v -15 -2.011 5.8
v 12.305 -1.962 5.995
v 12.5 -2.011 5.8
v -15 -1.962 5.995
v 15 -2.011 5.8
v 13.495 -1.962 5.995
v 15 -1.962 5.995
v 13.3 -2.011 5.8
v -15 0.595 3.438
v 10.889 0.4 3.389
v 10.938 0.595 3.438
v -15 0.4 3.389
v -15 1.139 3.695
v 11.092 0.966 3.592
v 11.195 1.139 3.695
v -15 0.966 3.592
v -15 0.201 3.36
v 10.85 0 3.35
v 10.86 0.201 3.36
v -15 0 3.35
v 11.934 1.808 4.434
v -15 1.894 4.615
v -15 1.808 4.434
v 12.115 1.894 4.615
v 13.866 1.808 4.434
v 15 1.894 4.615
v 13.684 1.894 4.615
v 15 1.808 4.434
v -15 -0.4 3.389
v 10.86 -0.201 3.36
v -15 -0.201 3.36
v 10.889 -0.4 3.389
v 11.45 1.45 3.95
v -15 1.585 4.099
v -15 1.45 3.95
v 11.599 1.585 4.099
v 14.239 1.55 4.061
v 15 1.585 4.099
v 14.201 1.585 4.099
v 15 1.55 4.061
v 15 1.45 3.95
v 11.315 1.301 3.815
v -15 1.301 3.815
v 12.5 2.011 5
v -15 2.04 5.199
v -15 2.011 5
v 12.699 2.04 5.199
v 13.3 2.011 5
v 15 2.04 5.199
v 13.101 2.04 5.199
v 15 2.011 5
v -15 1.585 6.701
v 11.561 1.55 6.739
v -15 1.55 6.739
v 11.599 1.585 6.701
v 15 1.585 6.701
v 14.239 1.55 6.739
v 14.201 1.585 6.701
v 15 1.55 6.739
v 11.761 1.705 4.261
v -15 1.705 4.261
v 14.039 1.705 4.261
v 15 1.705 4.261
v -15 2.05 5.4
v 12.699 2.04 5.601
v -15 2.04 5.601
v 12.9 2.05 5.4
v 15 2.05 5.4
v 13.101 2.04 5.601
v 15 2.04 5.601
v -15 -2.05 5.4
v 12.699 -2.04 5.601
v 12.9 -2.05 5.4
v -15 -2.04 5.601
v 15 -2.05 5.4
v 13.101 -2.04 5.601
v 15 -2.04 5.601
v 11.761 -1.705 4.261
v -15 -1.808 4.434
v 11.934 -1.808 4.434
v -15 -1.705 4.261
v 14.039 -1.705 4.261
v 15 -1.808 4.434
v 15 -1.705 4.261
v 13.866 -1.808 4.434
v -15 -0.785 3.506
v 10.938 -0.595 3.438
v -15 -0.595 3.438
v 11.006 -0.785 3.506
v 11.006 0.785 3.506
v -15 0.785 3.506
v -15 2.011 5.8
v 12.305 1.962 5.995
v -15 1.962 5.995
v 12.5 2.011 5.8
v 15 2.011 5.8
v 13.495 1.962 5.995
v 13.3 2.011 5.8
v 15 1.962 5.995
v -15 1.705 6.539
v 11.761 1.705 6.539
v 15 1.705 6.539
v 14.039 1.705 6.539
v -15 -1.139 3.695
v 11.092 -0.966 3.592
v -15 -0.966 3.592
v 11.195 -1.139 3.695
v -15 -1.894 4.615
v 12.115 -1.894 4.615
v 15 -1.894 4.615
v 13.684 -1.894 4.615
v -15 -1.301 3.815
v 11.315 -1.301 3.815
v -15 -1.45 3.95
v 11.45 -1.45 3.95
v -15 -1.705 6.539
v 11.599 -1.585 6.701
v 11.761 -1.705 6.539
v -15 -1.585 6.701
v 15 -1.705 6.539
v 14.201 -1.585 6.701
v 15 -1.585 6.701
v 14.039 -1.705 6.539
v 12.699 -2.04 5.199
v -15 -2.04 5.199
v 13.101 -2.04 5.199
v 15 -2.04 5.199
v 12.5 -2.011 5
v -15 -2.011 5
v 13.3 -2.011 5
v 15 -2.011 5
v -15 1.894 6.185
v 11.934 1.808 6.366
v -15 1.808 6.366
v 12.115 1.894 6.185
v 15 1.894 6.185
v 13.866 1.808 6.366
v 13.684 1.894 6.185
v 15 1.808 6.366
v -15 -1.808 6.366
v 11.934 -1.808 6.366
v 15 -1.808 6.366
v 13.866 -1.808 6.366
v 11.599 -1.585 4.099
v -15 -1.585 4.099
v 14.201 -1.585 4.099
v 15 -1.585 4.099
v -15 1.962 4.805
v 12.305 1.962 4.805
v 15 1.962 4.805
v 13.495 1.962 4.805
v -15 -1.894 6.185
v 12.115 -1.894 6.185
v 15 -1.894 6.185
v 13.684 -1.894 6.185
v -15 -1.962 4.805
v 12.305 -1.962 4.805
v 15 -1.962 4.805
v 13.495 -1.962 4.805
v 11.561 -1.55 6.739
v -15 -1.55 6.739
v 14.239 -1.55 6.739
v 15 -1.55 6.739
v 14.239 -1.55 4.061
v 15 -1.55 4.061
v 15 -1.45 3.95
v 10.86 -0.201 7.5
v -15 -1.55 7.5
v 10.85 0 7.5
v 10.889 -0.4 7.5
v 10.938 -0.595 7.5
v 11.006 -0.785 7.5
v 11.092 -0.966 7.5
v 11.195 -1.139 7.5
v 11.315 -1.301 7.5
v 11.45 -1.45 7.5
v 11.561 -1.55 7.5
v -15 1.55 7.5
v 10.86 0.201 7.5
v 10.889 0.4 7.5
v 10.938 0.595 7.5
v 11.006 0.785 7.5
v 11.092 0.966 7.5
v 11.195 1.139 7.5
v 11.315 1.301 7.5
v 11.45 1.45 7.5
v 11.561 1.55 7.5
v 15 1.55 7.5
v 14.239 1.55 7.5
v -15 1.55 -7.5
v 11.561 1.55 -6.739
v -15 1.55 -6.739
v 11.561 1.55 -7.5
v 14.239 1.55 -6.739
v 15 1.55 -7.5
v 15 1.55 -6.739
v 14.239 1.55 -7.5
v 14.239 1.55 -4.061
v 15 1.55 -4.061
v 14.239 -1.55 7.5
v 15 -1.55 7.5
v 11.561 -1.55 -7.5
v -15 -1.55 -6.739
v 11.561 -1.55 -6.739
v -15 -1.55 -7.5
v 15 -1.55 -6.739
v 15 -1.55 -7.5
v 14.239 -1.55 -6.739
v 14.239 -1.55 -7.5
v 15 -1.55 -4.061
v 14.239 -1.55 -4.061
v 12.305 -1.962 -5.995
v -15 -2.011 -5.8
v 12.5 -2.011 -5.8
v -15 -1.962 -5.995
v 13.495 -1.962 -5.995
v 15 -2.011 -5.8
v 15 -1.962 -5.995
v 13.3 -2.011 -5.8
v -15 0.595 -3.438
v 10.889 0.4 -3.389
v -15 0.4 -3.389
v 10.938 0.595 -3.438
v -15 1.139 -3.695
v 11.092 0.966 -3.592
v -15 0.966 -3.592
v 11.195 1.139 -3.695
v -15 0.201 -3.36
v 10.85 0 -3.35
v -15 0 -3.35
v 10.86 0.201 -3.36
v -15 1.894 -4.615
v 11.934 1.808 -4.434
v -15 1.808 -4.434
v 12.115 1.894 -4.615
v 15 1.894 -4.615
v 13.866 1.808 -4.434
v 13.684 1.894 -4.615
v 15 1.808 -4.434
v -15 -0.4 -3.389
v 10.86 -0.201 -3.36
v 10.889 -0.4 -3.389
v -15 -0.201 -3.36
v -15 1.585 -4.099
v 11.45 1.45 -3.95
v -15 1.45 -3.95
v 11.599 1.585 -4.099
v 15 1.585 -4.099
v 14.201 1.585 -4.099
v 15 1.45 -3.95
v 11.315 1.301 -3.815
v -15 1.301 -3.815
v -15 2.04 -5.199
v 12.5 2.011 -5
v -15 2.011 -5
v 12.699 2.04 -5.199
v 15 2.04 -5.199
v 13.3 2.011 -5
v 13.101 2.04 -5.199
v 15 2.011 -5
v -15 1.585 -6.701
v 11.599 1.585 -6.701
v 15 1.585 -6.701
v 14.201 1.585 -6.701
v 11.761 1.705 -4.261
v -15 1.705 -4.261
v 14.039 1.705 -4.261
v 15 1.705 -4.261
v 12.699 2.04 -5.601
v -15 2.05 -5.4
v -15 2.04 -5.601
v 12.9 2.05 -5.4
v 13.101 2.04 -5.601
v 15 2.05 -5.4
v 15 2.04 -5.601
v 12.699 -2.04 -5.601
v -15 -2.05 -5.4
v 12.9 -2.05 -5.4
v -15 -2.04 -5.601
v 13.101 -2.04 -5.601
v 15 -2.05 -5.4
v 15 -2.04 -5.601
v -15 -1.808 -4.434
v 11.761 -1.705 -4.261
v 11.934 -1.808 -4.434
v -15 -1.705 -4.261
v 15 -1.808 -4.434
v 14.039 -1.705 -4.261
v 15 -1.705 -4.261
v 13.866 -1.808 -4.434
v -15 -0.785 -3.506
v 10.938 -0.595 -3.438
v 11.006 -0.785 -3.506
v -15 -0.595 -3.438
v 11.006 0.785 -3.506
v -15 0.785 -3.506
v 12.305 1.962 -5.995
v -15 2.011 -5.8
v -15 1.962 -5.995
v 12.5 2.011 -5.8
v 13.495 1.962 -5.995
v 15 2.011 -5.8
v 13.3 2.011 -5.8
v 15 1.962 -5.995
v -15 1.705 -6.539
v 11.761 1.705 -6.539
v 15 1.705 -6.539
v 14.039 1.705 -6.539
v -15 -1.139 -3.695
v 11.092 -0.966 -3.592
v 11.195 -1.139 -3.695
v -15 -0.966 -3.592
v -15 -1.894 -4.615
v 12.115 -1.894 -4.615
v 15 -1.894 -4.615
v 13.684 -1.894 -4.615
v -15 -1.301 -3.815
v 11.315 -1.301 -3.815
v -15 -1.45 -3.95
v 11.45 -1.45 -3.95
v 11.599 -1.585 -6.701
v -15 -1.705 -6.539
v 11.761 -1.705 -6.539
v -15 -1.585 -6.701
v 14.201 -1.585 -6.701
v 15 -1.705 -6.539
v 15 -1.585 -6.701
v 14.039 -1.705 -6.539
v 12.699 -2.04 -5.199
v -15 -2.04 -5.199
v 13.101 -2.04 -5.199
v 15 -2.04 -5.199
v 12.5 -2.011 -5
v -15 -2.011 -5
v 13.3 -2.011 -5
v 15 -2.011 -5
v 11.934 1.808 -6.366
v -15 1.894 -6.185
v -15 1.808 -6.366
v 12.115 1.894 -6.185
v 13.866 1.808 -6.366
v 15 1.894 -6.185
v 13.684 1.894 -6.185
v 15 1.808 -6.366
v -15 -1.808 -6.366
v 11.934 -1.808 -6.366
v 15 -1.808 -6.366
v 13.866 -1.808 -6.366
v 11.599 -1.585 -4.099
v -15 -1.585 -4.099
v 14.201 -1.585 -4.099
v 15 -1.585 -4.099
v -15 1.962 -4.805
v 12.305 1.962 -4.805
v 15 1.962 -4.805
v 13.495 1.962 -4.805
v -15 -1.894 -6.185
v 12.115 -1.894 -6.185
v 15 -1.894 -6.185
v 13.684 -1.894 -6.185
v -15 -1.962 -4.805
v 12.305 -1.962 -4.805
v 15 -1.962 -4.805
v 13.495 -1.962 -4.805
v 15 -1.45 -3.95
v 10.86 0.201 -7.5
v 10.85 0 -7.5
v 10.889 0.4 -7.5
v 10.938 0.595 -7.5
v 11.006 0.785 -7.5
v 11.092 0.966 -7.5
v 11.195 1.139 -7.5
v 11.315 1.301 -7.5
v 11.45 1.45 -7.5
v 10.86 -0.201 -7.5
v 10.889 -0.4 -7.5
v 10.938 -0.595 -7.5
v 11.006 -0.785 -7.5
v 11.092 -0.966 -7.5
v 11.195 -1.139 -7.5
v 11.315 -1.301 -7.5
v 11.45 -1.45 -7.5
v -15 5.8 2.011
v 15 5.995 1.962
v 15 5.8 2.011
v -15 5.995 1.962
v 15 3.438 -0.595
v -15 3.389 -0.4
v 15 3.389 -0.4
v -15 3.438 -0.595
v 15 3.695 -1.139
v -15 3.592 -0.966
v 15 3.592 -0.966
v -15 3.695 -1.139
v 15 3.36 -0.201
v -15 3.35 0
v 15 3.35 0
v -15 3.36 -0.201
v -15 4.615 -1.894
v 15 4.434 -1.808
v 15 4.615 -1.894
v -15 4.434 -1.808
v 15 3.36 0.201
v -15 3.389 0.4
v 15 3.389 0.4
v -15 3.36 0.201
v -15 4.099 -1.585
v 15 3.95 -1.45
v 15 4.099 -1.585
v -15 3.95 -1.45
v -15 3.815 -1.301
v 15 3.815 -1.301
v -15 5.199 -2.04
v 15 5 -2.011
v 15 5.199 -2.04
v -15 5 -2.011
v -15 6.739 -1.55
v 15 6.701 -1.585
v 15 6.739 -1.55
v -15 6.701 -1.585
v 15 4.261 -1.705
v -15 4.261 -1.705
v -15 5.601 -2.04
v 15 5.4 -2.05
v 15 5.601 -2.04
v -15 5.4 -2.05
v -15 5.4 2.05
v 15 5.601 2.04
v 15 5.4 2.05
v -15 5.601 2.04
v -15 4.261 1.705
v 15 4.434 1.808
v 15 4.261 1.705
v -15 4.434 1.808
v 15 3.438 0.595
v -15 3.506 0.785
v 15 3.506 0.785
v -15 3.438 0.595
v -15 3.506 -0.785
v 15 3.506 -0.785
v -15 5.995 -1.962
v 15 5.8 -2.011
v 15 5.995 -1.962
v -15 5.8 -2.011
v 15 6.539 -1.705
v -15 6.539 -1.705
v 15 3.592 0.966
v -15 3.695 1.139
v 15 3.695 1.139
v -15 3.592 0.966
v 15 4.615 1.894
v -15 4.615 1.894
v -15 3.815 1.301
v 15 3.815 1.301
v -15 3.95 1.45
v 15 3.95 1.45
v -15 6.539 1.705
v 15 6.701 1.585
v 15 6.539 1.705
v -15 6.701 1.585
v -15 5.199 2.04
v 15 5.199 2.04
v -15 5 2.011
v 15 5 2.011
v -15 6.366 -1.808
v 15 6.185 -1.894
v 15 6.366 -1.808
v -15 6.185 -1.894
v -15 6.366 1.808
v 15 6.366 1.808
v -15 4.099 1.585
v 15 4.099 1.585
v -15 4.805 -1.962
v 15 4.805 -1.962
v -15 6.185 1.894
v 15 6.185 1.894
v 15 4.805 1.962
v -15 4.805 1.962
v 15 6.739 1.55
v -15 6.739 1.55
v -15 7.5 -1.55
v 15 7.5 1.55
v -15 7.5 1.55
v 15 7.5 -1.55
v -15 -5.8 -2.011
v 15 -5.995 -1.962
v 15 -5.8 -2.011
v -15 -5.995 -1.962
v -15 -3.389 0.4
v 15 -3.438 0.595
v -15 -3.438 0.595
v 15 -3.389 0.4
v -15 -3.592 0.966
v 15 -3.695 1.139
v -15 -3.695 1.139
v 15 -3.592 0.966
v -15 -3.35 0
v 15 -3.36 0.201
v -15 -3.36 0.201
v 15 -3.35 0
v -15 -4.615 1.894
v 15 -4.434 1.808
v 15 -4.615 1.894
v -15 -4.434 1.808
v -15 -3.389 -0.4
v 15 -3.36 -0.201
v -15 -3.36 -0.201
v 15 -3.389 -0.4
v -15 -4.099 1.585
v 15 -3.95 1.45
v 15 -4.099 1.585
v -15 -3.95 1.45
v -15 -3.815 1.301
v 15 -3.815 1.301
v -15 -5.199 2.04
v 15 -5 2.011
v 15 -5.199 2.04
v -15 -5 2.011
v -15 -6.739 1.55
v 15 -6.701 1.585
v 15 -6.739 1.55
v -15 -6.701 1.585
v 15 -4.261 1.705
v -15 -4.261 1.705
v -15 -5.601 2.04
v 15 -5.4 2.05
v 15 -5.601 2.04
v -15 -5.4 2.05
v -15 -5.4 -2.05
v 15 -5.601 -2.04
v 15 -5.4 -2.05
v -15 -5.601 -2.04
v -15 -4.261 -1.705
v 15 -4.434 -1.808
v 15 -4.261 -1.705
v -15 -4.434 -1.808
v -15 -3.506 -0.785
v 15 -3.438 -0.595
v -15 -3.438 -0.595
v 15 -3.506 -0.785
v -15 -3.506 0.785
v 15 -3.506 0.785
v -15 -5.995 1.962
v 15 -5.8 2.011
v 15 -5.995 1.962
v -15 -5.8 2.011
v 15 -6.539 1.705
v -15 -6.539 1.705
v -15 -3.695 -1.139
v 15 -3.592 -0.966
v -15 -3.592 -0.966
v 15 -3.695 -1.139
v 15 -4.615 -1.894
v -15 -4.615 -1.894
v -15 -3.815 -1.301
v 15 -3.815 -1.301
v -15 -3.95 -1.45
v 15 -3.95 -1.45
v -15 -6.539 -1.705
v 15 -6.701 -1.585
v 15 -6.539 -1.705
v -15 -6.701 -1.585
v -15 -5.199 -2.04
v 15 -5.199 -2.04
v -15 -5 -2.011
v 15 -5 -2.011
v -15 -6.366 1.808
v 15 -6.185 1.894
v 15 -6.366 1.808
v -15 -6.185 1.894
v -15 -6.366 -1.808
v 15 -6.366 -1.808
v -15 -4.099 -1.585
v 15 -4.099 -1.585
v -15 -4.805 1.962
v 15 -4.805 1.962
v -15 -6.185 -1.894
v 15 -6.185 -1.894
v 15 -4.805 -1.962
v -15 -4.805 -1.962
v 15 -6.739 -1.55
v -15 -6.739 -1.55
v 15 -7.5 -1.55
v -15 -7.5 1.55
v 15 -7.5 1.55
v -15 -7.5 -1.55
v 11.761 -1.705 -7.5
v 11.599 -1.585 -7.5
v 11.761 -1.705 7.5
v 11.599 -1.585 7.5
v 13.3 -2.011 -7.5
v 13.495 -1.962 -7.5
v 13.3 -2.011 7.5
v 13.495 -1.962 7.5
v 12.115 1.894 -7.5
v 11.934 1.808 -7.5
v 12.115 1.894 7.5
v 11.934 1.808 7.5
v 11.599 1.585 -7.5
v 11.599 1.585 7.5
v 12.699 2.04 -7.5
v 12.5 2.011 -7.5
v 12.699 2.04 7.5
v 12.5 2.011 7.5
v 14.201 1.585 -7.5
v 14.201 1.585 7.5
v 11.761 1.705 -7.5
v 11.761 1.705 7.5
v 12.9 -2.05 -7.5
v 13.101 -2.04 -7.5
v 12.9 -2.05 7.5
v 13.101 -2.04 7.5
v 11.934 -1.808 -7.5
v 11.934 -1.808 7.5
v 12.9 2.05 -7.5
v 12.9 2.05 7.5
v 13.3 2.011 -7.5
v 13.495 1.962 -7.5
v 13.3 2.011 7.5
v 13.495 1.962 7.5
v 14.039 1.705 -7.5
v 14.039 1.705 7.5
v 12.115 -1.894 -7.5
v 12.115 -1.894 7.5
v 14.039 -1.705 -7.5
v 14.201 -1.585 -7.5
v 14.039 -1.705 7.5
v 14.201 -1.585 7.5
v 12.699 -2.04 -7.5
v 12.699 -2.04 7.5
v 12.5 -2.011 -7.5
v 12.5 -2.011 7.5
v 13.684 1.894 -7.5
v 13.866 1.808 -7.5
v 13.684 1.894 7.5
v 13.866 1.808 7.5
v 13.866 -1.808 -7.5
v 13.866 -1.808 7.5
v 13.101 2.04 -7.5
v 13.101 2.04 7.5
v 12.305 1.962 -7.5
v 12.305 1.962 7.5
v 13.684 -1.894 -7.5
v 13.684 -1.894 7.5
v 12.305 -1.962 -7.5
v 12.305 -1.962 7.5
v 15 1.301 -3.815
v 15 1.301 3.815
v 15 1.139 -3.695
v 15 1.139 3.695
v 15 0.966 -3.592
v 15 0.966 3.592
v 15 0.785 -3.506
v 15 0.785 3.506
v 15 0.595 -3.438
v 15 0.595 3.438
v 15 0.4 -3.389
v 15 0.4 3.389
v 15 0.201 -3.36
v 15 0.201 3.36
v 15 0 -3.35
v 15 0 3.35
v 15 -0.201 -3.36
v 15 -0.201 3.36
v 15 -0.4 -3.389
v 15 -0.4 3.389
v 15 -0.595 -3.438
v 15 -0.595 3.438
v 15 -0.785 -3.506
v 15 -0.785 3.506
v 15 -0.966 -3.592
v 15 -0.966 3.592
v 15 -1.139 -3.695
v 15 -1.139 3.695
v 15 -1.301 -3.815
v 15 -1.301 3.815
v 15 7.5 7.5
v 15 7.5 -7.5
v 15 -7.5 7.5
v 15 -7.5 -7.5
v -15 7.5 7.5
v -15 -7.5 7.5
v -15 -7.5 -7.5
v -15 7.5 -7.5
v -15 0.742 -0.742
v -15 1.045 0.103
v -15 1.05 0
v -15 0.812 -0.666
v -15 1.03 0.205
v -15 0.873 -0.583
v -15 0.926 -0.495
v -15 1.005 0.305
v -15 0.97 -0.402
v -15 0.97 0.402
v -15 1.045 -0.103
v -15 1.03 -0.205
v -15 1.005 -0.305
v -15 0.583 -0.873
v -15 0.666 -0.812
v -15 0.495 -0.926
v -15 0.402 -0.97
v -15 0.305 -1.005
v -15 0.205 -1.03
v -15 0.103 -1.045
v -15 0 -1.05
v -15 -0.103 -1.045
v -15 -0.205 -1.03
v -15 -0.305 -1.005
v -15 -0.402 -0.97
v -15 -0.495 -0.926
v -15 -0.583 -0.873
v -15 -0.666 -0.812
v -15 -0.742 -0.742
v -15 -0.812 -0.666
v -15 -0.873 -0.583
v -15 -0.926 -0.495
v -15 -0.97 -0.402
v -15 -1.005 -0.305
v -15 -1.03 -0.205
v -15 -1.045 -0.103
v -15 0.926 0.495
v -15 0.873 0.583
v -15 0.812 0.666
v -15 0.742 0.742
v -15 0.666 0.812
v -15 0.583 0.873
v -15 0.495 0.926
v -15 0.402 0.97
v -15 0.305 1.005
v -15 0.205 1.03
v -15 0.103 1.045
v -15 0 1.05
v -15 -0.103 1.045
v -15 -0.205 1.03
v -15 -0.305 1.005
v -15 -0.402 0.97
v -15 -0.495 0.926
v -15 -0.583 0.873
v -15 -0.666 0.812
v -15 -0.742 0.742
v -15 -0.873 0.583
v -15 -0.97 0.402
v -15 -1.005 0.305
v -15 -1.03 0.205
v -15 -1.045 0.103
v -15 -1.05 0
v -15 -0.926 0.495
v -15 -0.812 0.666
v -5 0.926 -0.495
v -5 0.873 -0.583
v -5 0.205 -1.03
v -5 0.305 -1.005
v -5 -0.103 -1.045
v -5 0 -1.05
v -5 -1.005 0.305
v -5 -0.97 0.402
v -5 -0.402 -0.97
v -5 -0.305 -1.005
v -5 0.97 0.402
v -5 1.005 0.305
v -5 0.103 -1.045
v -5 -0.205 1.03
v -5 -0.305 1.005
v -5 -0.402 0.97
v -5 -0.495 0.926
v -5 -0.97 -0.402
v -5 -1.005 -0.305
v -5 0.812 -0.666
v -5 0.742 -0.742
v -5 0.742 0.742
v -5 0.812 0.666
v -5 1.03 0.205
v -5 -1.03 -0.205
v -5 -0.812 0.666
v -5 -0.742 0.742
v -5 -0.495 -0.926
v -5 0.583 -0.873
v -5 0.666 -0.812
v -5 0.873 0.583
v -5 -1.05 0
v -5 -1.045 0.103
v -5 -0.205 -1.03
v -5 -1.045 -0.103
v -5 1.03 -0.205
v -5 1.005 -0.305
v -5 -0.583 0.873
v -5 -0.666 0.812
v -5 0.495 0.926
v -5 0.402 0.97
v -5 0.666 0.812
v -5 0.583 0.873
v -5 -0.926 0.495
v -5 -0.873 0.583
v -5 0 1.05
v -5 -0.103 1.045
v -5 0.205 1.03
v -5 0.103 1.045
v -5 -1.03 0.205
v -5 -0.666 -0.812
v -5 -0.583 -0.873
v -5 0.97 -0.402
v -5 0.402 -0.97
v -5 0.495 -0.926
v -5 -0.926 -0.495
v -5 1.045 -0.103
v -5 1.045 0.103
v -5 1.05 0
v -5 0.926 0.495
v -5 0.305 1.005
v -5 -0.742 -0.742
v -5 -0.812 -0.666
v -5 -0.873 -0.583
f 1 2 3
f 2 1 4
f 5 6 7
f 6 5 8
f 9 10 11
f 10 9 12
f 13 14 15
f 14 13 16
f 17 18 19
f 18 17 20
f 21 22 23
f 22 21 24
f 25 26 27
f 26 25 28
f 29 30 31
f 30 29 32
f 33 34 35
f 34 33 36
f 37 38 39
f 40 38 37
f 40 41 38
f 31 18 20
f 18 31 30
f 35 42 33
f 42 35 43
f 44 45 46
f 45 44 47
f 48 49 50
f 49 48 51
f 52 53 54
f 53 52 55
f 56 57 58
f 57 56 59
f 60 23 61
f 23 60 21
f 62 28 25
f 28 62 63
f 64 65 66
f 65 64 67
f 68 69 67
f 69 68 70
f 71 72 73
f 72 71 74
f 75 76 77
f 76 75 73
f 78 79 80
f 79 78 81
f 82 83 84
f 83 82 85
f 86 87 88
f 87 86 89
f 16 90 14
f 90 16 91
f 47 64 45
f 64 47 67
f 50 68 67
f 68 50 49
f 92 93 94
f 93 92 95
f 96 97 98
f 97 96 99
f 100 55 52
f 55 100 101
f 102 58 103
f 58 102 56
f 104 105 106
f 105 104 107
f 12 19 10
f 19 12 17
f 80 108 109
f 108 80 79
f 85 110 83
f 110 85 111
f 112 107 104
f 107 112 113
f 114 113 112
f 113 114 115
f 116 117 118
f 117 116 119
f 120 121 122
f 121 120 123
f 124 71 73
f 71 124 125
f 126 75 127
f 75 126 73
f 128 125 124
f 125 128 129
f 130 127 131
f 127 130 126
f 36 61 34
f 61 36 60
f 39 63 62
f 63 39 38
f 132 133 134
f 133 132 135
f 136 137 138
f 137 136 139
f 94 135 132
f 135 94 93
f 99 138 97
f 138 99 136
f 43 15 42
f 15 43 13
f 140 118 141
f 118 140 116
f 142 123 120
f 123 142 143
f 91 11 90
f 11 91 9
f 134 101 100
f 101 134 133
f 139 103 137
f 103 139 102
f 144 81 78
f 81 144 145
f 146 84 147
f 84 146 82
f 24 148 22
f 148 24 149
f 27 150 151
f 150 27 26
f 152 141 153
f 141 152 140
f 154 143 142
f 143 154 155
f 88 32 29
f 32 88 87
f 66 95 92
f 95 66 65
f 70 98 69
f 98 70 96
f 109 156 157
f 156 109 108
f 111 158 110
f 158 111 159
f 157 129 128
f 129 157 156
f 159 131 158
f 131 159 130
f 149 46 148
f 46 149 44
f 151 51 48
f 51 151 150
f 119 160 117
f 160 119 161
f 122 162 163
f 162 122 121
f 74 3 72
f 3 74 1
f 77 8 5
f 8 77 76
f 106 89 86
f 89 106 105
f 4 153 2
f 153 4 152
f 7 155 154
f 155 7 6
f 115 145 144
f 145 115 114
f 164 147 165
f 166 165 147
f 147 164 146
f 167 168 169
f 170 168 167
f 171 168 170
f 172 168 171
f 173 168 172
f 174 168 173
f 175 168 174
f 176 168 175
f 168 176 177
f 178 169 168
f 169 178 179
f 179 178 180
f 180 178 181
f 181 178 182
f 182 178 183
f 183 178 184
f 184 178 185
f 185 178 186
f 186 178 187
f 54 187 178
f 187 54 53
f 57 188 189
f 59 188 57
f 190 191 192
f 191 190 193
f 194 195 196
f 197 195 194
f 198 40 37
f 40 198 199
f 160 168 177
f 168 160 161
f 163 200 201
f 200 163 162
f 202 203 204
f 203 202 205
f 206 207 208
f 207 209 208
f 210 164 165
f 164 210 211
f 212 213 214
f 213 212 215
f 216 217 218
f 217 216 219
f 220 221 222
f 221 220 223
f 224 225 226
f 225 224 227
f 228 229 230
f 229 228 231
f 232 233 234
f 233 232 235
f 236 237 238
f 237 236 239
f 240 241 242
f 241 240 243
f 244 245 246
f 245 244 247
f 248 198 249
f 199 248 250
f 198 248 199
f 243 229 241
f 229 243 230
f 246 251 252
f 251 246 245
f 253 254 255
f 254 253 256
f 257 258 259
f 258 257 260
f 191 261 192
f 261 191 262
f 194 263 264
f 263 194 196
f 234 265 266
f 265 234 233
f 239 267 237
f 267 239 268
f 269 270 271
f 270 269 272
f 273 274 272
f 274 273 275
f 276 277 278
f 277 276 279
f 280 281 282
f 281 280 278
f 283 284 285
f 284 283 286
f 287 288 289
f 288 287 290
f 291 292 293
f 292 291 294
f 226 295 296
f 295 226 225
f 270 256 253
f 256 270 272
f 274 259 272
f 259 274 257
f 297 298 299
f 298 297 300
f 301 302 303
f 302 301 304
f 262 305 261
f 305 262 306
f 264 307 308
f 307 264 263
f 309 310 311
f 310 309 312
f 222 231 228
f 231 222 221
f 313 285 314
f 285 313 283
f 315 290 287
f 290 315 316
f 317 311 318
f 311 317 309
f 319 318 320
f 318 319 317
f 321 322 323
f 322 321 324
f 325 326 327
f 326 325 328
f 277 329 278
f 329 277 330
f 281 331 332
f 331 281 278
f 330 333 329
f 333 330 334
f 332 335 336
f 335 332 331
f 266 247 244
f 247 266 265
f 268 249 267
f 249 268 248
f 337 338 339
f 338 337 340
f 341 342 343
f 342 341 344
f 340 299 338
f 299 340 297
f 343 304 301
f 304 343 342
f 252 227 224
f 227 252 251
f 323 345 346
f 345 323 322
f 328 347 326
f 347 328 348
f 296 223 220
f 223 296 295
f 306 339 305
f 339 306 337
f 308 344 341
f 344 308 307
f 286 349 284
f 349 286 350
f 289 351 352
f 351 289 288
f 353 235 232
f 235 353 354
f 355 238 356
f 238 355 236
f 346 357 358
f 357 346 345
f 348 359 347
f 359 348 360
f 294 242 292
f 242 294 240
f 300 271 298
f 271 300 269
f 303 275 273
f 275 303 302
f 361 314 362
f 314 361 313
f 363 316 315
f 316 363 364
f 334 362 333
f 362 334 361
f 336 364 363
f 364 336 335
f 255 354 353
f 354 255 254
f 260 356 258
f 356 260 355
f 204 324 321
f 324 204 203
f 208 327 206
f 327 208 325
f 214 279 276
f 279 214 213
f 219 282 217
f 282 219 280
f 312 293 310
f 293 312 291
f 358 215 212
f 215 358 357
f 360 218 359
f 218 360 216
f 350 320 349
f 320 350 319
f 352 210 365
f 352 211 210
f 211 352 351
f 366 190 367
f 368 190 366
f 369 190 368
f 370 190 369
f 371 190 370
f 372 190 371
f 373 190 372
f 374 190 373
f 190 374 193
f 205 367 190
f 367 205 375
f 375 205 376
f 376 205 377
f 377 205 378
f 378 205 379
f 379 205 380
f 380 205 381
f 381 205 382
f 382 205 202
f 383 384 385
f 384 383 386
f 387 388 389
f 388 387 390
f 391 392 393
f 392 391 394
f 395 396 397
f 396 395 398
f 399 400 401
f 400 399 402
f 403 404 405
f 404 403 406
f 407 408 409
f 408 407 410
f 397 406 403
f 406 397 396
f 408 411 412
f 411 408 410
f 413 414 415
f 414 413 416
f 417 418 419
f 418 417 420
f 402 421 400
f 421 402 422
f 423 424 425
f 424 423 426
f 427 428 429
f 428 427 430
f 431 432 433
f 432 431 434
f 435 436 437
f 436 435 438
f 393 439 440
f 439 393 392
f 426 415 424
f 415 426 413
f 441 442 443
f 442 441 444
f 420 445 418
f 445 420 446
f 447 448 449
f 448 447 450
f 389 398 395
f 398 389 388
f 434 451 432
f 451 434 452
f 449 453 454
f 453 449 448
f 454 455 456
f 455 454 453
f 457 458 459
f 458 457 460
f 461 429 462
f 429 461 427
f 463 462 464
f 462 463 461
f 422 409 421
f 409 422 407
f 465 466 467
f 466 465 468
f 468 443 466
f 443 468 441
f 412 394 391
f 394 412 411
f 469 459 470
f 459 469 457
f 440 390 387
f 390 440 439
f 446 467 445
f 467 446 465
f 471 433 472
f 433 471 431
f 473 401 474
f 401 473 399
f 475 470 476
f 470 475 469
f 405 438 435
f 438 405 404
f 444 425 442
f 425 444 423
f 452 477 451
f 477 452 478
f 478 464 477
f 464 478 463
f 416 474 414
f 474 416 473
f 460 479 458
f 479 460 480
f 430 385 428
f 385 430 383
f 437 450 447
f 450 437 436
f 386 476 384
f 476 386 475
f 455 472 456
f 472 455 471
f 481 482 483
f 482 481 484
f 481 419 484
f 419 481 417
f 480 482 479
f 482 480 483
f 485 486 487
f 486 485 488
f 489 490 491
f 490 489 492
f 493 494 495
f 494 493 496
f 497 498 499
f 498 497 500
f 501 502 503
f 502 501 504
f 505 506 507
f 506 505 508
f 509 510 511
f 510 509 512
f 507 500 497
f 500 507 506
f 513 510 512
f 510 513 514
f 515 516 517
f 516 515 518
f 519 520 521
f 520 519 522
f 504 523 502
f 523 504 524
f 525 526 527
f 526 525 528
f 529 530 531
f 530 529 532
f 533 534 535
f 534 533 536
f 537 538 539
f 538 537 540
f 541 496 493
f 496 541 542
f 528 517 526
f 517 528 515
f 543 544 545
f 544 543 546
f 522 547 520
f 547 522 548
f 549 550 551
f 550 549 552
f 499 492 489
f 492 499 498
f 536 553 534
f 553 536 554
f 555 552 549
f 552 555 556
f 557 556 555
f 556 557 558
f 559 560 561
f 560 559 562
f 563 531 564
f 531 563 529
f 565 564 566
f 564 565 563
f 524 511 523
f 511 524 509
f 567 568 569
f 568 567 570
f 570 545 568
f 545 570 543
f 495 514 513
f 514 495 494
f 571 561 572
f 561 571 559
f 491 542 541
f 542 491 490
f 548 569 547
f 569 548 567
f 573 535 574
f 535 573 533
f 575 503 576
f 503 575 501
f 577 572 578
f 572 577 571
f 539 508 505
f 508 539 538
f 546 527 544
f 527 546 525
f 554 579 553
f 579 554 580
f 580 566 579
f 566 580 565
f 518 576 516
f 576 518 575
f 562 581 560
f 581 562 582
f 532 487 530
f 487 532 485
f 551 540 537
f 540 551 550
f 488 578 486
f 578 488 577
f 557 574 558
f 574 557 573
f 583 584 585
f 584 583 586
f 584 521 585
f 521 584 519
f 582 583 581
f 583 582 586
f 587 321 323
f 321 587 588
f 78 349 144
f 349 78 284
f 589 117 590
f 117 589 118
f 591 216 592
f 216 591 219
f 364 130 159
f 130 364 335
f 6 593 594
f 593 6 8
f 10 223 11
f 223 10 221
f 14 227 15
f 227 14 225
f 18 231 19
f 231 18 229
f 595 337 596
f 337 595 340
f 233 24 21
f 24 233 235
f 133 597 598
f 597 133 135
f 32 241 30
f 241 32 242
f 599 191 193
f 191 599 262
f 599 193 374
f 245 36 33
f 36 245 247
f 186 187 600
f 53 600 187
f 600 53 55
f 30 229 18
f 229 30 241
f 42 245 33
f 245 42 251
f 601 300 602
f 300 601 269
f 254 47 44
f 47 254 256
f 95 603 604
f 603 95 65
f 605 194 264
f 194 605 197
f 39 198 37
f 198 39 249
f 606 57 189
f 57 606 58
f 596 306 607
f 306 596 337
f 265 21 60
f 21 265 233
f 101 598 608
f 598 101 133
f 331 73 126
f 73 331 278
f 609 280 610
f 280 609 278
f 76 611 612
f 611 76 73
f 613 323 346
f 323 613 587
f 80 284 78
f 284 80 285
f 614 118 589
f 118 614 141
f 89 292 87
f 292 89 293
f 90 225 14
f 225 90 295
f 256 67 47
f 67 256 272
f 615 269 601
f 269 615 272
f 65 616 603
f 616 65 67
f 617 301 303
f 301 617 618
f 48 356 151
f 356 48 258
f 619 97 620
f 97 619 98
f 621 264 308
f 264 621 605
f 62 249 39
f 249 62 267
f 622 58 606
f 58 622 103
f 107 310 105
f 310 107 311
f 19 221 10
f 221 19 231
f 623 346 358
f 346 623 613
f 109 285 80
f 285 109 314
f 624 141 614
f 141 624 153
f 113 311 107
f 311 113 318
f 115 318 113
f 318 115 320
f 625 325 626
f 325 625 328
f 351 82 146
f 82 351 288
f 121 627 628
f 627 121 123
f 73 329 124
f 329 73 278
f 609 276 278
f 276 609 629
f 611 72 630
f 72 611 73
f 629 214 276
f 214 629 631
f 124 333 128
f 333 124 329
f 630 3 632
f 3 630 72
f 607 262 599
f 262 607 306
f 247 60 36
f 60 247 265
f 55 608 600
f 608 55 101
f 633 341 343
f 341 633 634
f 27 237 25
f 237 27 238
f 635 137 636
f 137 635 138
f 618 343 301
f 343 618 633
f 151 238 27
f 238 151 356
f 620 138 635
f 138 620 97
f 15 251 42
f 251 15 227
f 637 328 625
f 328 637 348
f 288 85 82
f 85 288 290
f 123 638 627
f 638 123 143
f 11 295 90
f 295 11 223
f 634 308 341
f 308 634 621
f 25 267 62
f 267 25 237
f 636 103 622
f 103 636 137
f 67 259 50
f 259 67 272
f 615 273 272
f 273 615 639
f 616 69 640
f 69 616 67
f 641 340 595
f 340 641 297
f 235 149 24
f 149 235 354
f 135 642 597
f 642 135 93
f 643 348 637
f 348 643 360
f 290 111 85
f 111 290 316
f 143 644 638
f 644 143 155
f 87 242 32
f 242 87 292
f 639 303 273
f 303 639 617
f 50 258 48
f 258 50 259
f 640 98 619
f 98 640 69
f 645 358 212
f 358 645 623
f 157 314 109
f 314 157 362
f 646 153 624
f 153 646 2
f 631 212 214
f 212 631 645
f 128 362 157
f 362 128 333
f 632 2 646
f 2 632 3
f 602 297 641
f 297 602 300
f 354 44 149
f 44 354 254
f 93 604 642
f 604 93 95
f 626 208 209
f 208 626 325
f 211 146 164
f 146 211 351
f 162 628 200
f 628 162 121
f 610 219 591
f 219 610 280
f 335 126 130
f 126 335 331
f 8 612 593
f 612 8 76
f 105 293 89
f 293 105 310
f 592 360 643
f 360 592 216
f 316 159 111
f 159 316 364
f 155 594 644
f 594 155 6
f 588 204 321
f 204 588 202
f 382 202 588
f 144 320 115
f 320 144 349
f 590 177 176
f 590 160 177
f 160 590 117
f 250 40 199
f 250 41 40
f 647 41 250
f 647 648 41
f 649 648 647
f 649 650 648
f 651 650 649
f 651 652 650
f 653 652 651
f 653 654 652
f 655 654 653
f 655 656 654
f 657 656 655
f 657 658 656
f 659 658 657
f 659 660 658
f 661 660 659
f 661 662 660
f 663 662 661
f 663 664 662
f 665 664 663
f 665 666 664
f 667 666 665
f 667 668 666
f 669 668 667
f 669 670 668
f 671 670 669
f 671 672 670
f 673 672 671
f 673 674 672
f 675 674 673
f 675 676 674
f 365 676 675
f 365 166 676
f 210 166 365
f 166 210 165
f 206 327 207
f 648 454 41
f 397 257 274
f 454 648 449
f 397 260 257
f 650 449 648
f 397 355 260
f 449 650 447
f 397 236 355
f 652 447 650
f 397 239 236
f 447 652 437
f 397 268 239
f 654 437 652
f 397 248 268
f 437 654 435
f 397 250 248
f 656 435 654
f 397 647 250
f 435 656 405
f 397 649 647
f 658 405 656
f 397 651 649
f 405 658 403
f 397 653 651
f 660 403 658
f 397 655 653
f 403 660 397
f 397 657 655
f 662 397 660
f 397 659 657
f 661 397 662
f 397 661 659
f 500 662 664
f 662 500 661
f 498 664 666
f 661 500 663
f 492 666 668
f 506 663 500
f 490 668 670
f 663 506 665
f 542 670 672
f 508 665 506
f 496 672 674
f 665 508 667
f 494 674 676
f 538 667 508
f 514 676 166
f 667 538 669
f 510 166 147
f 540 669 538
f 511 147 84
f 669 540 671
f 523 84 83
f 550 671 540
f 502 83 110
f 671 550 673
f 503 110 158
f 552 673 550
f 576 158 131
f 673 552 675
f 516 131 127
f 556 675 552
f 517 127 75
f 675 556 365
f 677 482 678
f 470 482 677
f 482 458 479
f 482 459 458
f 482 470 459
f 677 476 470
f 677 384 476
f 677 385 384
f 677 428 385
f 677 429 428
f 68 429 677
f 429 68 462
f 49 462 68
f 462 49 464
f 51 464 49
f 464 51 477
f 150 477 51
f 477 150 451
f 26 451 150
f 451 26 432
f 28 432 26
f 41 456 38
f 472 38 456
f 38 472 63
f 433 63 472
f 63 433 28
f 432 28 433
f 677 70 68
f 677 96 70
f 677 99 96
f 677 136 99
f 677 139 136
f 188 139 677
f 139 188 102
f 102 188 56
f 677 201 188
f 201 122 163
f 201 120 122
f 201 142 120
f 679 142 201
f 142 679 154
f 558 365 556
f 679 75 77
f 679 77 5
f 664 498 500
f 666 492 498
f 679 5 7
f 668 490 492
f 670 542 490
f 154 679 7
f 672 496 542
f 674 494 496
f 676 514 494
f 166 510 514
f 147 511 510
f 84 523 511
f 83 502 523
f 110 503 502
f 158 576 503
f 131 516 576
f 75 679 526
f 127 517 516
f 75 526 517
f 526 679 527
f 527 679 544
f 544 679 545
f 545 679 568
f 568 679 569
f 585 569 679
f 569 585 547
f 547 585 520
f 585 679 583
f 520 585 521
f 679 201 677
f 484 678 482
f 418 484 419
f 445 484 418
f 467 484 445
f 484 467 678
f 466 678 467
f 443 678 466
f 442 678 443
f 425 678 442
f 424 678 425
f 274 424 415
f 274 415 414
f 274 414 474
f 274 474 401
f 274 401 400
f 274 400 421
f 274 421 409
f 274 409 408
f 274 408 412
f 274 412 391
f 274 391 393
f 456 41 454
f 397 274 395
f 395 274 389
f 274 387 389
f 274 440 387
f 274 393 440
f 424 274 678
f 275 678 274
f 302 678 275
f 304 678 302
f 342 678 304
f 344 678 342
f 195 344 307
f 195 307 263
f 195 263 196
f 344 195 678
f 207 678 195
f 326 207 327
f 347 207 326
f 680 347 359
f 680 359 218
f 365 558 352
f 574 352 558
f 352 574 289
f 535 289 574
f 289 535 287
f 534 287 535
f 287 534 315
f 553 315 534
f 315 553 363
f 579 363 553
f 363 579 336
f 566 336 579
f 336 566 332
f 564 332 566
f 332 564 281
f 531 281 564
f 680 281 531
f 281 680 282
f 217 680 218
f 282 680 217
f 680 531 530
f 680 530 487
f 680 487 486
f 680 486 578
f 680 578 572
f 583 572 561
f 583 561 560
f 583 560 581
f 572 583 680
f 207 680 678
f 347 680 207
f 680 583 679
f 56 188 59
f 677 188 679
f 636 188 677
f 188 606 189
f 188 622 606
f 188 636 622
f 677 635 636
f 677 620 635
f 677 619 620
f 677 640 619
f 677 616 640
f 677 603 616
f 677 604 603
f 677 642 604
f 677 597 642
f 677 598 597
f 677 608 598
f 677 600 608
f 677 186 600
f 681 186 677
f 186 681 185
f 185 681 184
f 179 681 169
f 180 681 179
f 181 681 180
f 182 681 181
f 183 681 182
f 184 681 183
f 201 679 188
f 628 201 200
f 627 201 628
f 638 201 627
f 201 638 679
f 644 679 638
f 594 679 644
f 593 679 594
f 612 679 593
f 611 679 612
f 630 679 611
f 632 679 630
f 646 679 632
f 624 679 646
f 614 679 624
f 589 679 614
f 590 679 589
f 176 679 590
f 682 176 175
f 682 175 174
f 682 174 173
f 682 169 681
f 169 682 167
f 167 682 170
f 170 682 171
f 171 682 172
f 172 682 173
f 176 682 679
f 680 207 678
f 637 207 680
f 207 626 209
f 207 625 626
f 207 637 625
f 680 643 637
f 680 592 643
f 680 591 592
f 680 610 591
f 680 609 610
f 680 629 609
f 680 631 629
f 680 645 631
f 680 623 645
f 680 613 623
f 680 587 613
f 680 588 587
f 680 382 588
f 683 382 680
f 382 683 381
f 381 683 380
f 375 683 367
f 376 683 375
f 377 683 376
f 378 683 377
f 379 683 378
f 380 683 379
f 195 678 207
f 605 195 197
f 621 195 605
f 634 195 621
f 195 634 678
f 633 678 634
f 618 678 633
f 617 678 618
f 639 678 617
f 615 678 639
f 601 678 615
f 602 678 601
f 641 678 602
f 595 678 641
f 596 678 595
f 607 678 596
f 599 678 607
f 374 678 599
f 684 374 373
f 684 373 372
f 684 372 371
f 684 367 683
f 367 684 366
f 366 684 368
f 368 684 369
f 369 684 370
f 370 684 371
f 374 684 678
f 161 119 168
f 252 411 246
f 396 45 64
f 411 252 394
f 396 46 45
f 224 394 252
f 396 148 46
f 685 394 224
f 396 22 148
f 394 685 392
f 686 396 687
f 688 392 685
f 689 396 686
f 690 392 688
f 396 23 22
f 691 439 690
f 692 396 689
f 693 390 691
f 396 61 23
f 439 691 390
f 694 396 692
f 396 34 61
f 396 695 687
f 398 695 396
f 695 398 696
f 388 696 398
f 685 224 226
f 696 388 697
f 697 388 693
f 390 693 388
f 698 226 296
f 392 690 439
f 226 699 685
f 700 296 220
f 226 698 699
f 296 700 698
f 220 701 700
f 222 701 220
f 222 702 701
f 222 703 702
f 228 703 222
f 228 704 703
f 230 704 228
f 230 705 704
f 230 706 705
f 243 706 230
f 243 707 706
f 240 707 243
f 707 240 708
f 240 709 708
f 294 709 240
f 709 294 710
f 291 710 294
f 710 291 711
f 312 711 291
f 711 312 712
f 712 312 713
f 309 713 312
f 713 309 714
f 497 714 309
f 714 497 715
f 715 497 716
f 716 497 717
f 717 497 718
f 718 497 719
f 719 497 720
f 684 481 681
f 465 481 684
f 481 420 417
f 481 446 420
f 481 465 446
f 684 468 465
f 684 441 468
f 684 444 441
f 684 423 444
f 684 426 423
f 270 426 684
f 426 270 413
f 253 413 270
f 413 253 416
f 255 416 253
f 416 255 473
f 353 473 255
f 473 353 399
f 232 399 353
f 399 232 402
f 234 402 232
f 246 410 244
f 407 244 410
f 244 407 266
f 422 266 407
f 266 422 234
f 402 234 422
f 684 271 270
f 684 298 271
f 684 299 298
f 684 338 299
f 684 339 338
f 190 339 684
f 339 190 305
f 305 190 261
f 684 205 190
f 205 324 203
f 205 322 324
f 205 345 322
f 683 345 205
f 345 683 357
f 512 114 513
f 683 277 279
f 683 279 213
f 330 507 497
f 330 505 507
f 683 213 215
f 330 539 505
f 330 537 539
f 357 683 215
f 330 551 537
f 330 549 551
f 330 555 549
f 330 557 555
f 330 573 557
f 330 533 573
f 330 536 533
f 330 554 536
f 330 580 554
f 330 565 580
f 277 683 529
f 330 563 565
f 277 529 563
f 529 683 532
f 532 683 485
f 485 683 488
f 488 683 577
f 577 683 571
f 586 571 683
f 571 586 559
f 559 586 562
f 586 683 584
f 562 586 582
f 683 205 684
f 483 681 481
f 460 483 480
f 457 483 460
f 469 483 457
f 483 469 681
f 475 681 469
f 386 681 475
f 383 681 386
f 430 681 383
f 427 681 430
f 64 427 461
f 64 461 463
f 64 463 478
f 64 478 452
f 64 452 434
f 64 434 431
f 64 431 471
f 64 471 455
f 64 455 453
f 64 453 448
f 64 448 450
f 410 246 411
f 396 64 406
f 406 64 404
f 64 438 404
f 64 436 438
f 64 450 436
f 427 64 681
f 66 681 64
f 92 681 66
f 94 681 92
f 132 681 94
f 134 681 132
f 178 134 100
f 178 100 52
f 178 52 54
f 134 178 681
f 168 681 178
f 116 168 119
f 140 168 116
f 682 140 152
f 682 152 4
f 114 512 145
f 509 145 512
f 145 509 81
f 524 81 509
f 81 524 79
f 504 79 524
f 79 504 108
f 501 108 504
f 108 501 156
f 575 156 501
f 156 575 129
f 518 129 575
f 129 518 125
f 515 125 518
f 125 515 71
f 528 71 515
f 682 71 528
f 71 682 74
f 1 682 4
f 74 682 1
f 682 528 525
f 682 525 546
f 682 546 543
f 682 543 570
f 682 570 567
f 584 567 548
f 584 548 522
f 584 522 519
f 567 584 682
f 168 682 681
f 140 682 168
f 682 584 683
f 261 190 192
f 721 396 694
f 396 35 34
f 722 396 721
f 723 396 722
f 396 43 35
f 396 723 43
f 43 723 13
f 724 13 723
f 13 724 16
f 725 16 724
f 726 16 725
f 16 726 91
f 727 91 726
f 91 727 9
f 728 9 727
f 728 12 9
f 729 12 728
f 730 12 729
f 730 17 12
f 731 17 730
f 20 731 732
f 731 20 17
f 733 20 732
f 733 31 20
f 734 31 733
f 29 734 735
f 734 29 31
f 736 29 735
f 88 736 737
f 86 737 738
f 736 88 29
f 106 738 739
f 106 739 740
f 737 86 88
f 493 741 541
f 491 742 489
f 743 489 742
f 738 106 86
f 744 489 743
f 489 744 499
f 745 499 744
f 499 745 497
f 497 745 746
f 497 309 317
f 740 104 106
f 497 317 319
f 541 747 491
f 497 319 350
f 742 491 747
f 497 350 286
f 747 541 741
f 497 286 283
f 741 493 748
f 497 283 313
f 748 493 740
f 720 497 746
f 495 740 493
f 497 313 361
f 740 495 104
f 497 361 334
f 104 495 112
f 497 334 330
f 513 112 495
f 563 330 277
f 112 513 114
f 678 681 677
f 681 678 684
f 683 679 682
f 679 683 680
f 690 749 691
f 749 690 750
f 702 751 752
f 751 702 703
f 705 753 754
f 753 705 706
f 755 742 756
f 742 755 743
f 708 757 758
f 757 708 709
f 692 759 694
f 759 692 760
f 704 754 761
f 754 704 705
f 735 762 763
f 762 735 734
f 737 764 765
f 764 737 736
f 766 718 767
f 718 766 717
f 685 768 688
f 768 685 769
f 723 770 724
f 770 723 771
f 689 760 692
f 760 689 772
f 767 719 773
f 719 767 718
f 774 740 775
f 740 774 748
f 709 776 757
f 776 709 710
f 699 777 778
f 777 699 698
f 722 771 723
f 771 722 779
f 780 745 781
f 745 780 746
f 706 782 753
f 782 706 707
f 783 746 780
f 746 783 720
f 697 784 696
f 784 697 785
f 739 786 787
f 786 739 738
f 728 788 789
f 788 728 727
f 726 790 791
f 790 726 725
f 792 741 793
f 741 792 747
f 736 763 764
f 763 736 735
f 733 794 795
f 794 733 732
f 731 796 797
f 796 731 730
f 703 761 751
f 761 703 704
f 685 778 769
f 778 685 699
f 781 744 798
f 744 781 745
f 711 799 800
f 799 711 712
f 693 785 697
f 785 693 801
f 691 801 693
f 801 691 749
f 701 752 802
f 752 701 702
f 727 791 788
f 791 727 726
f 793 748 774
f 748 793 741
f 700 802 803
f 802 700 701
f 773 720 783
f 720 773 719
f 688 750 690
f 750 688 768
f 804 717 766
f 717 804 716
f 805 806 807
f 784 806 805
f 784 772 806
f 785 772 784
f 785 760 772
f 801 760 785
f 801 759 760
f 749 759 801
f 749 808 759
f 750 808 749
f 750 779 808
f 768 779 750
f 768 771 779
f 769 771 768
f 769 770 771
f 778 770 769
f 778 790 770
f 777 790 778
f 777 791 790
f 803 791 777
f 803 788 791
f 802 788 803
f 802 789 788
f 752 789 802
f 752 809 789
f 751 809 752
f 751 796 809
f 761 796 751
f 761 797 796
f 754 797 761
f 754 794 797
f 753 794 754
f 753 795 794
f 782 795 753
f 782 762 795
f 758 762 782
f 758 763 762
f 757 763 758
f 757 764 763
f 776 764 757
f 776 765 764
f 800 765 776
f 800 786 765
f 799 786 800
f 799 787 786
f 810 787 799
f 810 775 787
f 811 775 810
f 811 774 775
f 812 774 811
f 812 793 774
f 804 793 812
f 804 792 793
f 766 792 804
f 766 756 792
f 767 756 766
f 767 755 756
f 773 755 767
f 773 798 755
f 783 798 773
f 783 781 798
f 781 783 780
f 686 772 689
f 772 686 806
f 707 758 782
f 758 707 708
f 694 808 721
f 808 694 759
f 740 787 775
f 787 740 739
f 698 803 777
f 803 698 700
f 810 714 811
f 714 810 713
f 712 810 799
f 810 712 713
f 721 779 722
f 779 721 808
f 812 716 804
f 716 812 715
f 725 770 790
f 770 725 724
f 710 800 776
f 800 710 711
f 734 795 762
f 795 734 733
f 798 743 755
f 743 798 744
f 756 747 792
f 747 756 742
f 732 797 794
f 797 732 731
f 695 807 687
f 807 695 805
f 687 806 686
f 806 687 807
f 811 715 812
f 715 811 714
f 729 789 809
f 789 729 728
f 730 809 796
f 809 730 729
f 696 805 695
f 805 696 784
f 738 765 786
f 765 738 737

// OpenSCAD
/* The following OpenSCAD design is a model of a Fischertechnik
   Baustein. It's purpose is to have a possibility to add
   electronics by adapting this design, but be able to integrate
   it in a model. The flexible nylon top characteristic can be
   created by inserting a metric screw and adding a thread in the
   hole.
   
   Copyright (c)2026 by Roland van Straten, All Rights Reserved. Commercial in Confidence.
   MIT License.
 */

// ============================================================
// Fischertechnik Baustein 30 — Parametric OpenSCAD
// ============================================================
//
// 4 T-slot grooves along X (full 30 mm length)
// + 1 groove on end face X = +L/2 (along Z, centered Y)
// + 1 hole on end face X = -L/2 (centered, Ø2 mm, 10 mm deep)
//
// Verified dims (forum.ftcommunity.de):
//   Bore Ø:      4.0 mm
//   Slit width:  3.0 mm
//   Bore center: 2.1 mm from surface
// ============================================================

// ==== PARAMETERS ====

block_length = 30;        // mm (X)
block_width  = 15;        // mm (Y)
block_height = 15;        // mm (Z)

groove_bore_d   = 4.0;    // mm
groove_slit_w   = 3.0;    // mm
groove_depth    = 2.1;    // mm — surface to bore center

end_hole_d      = 2.0;    // mm — hole diameter on left end
end_hole_depth  = 10.0;   // mm — hole shaft depth

tol = 0.1;                // printer tolerance
$fn = 64;

// ==== COMPUTED ====
gd  = groove_bore_d + tol;
gw  = groove_slit_w + tol;
gc  = groove_depth;
eps = 0.5;

// ============================================================
// Groove primitive: bore (cylinder along X) + slit (box)
// Bore center at origin, slit opens toward +Z
// ============================================================
module groove(len) {
    union() {
        rotate([0, 90, 0])
            cylinder(h = len, d = gd, center = true);
        translate([0, 0, gc/2])
            cube([len, gw, gc], center = true);
    }
}

// ============================================================
// Baustein 30
// ============================================================
module baustein_30() {
    L = block_length + eps;
    W = block_width;
    H = block_height;
    Heps = H + eps;

    difference() {
        cube([block_length, W, H], center = true);

        // ---- 4 longitudinal grooves (along X) ----

        // TOP: slit opens +Z
        translate([0, 0, H/2 - gc])
            groove(L);

        // BOTTOM: slit opens -Z
        translate([0, 0, -(H/2 - gc)])
            mirror([0, 0, 1])
                groove(L);

        // RIGHT (Y+): slit opens +Y
        translate([0, W/2 - gc, 0])
            rotate([-90, 0, 0])
                groove(L);

        // LEFT (Y-): slit opens -Y
        translate([0, -(W/2 - gc), 0])
            rotate([90, 0, 0])
                groove(L);

        // ---- 1 groove on end face (X = +L/2) ----
        // Runs along Z, centered on Y, slit opens +X
        translate([block_length/2 - gc, 0, 0])
            rotate([0, 90, 0])
                groove(Heps);

        // ---- 1 hole on opposite end face (X = -L/2) ----
        // Centered on face, Ø 2 mm, 10 mm deep into block
        translate([-block_length/2, 0, 0])
            rotate([0, 90, 0])
                cylinder(h = end_hole_depth, d = end_hole_d + tol);
    }
}

// ============================================================
baustein_30();

// DEBUG: cross-section at X = 0
// difference() {
//     baustein_30();
//     translate([0, -20, -20])
//         cube([40, 40, 40]);
// }
